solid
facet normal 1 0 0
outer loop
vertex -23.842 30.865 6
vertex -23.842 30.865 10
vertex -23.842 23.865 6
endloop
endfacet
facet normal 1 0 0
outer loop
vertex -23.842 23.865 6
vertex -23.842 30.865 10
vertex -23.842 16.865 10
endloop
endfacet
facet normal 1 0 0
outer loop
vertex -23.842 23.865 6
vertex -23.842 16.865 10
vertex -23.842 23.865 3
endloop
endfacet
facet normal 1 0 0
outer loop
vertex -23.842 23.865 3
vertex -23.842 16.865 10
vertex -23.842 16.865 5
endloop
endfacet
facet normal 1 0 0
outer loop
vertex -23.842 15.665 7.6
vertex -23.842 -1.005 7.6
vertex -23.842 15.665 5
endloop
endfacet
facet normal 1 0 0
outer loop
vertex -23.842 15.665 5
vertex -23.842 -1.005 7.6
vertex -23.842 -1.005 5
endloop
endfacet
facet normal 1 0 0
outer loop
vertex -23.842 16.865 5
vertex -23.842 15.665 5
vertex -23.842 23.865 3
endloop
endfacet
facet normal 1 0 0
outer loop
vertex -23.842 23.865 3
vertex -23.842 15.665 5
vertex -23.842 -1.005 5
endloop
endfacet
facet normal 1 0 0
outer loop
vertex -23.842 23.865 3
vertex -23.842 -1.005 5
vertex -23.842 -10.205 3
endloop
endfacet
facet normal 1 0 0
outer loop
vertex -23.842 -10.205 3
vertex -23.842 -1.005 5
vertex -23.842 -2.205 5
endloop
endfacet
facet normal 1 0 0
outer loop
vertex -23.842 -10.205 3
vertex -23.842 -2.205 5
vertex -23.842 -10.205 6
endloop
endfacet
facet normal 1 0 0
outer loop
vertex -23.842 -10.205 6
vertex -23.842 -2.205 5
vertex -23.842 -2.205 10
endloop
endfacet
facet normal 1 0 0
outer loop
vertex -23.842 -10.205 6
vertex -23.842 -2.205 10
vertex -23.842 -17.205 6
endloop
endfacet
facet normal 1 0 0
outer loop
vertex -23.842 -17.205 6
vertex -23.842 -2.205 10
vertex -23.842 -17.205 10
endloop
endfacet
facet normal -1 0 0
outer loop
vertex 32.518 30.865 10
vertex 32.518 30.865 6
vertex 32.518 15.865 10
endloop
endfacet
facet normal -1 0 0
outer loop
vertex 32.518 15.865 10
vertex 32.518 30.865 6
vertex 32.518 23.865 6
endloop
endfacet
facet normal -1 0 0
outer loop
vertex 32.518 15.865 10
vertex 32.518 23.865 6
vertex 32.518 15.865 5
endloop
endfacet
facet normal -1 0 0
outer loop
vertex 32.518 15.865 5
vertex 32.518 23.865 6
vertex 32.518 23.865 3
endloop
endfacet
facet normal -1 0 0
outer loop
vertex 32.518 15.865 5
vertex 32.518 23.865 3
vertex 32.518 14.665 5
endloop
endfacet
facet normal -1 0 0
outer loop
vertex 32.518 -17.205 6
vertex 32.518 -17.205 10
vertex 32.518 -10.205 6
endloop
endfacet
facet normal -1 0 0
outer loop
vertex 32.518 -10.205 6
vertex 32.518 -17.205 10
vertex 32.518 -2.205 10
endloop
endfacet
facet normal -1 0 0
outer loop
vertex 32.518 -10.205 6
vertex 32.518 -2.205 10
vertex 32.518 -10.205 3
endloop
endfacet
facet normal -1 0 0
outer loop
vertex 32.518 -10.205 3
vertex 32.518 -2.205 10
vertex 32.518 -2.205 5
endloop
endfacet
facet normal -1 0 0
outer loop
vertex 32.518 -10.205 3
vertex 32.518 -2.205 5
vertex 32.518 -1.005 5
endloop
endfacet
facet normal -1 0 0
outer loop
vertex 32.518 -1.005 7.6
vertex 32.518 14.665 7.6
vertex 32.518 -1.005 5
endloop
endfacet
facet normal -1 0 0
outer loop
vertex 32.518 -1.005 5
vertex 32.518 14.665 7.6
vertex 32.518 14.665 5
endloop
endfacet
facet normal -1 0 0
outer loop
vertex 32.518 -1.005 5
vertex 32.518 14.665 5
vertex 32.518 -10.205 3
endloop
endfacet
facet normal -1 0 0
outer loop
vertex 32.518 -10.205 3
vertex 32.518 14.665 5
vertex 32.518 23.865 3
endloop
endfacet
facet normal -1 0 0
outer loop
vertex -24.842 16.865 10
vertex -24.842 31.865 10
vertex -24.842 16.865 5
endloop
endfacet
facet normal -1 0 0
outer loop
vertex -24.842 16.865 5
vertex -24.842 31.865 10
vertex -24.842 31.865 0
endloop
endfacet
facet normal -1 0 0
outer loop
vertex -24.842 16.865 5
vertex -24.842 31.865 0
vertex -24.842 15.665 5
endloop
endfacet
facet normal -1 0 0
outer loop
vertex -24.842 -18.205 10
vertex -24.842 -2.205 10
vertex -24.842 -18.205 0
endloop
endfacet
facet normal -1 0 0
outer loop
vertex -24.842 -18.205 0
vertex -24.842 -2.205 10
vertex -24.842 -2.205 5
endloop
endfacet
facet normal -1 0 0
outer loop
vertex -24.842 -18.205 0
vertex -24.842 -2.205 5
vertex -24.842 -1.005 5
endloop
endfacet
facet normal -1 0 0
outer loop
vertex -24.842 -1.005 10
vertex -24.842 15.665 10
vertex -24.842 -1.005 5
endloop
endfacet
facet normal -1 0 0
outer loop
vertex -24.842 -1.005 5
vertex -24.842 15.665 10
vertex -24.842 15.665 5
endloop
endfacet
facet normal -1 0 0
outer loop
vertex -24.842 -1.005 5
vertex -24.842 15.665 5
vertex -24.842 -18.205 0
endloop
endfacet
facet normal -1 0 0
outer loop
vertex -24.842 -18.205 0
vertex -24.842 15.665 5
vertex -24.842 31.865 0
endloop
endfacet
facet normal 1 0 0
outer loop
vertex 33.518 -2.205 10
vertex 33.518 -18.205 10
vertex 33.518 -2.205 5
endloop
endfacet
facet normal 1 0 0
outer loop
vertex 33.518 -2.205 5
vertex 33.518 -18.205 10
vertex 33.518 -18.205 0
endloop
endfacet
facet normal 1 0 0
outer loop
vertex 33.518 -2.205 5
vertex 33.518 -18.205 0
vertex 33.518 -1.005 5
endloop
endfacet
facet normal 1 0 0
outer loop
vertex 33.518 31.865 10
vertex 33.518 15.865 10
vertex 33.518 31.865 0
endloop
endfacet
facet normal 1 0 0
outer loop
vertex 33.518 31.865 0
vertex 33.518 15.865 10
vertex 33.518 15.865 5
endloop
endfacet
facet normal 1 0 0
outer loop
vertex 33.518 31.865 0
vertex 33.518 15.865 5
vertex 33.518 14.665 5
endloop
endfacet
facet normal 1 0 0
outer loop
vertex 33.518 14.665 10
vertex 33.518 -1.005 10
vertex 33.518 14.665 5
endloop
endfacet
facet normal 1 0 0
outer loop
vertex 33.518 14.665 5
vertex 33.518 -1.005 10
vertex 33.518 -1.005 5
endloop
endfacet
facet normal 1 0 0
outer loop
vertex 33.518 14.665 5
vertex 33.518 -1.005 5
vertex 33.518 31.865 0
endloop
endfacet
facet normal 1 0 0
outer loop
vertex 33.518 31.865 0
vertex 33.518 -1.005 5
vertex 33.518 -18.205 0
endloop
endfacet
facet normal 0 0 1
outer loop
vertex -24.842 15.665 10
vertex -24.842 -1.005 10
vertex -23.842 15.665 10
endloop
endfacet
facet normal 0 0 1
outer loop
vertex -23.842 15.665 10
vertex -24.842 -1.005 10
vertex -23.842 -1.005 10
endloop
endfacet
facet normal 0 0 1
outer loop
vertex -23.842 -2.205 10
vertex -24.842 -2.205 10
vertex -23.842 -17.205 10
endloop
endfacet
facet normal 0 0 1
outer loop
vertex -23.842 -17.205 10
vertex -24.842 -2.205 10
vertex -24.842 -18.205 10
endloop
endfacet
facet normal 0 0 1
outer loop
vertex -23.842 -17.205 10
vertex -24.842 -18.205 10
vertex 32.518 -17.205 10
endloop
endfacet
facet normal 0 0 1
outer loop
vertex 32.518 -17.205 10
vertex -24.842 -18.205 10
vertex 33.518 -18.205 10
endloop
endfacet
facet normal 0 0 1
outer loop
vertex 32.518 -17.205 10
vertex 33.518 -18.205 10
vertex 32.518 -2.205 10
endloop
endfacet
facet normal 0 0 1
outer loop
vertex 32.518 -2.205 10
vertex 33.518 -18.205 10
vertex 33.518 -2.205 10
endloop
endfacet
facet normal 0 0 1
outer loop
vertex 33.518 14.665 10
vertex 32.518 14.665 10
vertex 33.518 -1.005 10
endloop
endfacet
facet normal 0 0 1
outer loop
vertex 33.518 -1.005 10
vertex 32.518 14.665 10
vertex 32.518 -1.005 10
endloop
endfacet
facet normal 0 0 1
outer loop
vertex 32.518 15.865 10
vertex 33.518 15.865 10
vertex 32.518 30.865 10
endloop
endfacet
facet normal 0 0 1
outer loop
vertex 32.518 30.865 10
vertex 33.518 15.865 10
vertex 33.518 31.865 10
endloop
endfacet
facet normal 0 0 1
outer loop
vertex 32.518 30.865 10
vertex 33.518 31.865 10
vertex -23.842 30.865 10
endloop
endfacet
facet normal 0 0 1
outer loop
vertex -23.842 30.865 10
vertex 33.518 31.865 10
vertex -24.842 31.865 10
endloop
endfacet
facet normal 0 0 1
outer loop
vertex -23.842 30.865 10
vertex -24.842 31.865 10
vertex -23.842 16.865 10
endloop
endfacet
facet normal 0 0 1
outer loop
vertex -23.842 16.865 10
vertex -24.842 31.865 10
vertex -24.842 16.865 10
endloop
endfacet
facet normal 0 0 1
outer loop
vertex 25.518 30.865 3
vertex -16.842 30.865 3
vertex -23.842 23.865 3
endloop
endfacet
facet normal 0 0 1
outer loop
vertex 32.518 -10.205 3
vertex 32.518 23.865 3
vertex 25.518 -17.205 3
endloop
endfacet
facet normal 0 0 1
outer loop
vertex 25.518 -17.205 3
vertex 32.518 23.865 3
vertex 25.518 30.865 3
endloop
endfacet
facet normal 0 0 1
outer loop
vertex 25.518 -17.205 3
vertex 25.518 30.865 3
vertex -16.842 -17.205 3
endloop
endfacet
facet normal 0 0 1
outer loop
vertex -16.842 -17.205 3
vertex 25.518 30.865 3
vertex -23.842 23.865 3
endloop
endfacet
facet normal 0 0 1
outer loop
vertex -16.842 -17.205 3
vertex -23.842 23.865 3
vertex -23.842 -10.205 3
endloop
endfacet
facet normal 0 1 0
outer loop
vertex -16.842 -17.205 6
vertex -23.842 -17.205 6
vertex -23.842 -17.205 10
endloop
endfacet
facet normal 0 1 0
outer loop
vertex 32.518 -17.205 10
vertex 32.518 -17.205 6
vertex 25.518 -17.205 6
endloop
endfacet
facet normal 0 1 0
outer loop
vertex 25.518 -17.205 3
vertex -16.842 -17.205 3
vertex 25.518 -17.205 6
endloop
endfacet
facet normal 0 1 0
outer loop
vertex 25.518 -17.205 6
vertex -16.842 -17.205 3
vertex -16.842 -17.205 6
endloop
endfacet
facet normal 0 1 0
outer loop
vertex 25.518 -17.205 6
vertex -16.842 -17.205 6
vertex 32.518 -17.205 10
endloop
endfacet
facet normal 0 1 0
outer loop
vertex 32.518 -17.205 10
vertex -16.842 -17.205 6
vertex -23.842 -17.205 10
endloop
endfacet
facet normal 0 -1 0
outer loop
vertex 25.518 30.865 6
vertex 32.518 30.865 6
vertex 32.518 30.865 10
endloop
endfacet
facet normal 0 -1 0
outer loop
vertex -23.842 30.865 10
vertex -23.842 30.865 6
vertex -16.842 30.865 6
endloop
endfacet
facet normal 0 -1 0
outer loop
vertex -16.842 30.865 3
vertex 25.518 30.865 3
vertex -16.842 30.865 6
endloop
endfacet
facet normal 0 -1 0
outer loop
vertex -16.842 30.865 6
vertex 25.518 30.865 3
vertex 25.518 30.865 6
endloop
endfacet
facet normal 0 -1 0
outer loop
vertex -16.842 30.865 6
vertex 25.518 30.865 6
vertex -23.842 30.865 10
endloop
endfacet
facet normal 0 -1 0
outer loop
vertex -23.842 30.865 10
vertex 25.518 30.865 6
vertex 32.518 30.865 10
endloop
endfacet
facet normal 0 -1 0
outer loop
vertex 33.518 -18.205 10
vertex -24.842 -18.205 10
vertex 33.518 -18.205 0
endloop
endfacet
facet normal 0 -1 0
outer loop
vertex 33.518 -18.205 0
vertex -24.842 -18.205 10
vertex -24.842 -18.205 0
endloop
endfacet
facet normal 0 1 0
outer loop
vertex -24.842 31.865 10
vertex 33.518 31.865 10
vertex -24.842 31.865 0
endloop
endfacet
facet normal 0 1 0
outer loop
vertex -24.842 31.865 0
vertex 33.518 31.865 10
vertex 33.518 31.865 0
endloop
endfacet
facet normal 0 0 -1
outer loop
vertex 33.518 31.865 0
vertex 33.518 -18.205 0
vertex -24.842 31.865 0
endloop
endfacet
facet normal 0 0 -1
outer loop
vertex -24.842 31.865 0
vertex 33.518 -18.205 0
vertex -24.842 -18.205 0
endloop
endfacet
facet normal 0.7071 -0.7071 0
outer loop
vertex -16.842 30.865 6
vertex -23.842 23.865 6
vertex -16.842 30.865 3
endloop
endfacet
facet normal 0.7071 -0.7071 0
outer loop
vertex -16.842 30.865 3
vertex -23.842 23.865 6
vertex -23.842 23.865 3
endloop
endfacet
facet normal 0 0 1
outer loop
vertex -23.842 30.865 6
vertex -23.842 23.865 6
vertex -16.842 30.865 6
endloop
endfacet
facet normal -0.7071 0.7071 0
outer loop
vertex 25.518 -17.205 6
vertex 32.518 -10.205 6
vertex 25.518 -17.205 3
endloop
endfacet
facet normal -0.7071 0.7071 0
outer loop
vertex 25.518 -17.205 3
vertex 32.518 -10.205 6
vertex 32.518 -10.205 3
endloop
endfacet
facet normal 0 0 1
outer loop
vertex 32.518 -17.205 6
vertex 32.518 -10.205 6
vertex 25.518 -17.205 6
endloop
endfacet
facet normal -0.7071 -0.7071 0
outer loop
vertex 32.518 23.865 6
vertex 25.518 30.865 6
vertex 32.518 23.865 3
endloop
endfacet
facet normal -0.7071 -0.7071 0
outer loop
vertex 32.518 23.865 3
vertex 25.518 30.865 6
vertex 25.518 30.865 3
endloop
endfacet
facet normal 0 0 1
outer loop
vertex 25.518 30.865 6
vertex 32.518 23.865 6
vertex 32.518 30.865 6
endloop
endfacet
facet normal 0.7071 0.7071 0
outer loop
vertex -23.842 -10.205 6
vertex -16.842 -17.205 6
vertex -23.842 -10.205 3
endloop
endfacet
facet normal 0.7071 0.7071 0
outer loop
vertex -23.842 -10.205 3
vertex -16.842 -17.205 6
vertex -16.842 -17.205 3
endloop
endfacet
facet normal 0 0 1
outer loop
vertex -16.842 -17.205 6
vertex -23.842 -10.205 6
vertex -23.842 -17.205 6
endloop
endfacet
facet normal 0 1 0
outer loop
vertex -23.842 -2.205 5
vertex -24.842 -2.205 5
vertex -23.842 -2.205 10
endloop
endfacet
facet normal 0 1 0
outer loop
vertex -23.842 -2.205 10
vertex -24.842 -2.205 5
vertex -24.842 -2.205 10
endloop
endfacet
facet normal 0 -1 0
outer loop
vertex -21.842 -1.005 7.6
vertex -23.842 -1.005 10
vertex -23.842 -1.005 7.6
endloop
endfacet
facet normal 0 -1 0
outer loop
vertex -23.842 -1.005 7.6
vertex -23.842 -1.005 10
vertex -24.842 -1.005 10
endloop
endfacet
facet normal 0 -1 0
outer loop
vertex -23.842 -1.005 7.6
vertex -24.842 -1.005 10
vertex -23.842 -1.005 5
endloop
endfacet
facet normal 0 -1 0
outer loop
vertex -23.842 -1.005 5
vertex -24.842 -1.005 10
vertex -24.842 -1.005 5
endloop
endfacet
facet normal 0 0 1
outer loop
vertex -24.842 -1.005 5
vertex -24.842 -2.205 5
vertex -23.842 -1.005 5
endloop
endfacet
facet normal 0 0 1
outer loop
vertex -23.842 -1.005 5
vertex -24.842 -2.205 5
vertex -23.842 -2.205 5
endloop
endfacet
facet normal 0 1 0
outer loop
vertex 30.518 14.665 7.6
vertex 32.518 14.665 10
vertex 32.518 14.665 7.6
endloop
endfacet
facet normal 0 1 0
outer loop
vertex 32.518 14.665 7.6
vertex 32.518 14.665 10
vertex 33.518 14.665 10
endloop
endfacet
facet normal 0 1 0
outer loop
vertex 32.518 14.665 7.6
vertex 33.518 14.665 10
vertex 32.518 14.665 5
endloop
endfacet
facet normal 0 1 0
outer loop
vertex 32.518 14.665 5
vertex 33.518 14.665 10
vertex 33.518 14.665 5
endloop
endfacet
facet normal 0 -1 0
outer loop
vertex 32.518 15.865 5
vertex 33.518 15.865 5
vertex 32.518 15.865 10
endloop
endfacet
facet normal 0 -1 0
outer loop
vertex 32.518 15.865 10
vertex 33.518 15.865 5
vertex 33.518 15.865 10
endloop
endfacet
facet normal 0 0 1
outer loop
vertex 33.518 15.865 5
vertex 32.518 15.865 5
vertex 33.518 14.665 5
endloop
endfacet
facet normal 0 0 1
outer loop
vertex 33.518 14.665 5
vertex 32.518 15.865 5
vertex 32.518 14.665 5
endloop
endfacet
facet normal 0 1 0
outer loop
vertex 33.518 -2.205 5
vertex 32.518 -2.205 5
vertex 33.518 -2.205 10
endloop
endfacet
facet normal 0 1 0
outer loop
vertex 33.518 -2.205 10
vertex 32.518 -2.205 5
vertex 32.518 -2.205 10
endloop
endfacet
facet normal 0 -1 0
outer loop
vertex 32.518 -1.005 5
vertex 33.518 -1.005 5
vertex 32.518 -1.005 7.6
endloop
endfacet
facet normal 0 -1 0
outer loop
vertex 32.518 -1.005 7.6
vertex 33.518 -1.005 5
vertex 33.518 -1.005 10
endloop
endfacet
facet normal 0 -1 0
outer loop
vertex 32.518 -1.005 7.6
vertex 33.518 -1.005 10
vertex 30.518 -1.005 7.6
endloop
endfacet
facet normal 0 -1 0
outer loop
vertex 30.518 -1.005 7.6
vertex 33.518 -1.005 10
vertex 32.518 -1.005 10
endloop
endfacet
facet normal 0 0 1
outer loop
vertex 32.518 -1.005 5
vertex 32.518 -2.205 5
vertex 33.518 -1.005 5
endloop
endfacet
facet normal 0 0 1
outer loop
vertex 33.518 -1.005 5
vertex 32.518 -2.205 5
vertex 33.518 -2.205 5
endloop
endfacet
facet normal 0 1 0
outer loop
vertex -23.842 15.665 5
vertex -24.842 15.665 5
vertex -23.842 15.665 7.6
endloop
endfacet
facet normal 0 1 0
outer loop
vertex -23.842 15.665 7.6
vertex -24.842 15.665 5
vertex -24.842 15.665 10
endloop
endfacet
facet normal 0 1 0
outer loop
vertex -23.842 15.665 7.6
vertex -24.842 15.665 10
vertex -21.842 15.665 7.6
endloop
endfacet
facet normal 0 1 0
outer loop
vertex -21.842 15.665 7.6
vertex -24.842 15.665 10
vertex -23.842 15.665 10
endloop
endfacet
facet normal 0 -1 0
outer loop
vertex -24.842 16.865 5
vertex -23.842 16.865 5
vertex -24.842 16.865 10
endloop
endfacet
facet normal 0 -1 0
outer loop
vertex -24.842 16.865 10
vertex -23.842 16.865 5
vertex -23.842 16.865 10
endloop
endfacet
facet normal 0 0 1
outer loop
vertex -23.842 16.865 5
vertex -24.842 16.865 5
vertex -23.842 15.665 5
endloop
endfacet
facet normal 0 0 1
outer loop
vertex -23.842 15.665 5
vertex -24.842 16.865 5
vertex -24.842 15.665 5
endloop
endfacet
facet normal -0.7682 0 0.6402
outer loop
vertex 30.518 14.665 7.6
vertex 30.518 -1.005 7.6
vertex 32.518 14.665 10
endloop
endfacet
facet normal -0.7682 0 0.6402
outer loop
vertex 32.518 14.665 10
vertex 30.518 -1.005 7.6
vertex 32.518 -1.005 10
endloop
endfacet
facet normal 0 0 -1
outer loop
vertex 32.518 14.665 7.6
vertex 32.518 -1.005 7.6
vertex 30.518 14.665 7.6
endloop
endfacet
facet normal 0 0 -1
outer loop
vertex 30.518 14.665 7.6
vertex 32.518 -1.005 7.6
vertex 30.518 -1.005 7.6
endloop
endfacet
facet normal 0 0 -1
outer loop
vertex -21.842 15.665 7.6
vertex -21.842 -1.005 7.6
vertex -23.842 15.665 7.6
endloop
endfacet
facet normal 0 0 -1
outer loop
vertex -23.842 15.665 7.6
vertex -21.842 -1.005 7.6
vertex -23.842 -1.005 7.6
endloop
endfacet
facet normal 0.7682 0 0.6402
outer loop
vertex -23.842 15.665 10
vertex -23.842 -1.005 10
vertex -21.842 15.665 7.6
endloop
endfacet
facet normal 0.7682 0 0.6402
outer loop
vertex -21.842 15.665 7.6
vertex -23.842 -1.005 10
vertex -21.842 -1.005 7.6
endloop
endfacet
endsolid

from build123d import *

# Parameters (mm, degrees)
SKETCH_1_W          = 58.36
SKETCH_1_H          = 50.07
EXTRUDE_1_DEPTH     = 3
SKETCH_2_W          = 58.36
SKETCH_2_H          = 50.07
SKETCH_2_W_2        = 56.36
SKETCH_2_H_2        = 48.07
EXTRUDE_2_DEPTH     = 7
EXTRUDE_3_DEPTH     = 3
SKETCH_4_W          = 1
SKETCH_4_H          = 1.2
CUT_EXTRUDE_1_DEPTH = 5
EXTRUDE_4_DEPTH     = 15.67
EXTRUDE_5_DEPTH     = 16.67


with BuildPart() as part:
    # 草圖1 → 填料-伸長1 (new body)
    with BuildSketch(Plane.XY):
        with Locations((4.337567568, 6.83036036)):
            Rectangle(SKETCH_1_W, SKETCH_1_H)
    extrude(amount=EXTRUDE_1_DEPTH)

    # 草圖2 → 填料-伸長2 (add)
    with BuildSketch(Plane.XY.offset(3)):
        with Locations((4.337567568, 6.83036036)):
            Rectangle(SKETCH_2_W, SKETCH_2_H)
        with Locations((4.337567568, 6.83036036)):
            Rectangle(SKETCH_2_W_2, SKETCH_2_H_2, mode=Mode.SUBTRACT)
    extrude(amount=EXTRUDE_2_DEPTH)

    # 草圖3 → 填料-伸長3 (add)
    with BuildSketch(Plane.XY.offset(3)):
        Polygon((-23.842432432, 30.86536036), (-23.842432432, 23.86536036), (-16.842432432, 30.86536036), align=None)
        Polygon((32.517567568, -17.20463964), (32.517567568, -10.20463964), (25.517567568, -17.20463964), align=None)
        Polygon((32.517567568, 30.86536036), (32.517567568, 23.86536036), (25.517567568, 30.86536036), align=None)
        Polygon((-23.842432432, -17.20463964), (-23.842432432, -10.20463964), (-16.842432432, -17.20463964), align=None)
    extrude(amount=EXTRUDE_3_DEPTH)

    # 草圖4 → 除料-伸長1 (cut)
    with BuildSketch(Plane.XY.offset(10)):
        with Locations((-24.342432432, -1.60463964)):
            Rectangle(SKETCH_4_W, SKETCH_4_H)
        with Locations((-24.342432432, 16.26536036)):
            Rectangle(SKETCH_4_W, SKETCH_4_H)
        with Locations((33.017567568, -1.60463964)):
            Rectangle(SKETCH_4_W, SKETCH_4_H)
        with Locations((33.017567568, 15.26536036)):
            Rectangle(SKETCH_4_W, SKETCH_4_H)
    extrude(amount=-CUT_EXTRUDE_1_DEPTH, mode=Mode.SUBTRACT)

    # 草圖5 → 填料-伸長4 (add)
    with BuildSketch(Plane.XZ.offset(1.00463964)):
        Polygon((32.517567568, 10), (30.517567568, 7.6), (32.517567568, 7.6), align=None)
    extrude(amount=-EXTRUDE_4_DEPTH)

    # 草圖6 → 填料-伸長5 (add)
    with BuildSketch(Plane.XZ.offset(1.00463964)):
        Polygon((-23.842432432, 10), (-21.842432432, 7.6), (-23.842432432, 7.6), align=None)
    extrude(amount=-EXTRUDE_5_DEPTH)


solid = part.part
